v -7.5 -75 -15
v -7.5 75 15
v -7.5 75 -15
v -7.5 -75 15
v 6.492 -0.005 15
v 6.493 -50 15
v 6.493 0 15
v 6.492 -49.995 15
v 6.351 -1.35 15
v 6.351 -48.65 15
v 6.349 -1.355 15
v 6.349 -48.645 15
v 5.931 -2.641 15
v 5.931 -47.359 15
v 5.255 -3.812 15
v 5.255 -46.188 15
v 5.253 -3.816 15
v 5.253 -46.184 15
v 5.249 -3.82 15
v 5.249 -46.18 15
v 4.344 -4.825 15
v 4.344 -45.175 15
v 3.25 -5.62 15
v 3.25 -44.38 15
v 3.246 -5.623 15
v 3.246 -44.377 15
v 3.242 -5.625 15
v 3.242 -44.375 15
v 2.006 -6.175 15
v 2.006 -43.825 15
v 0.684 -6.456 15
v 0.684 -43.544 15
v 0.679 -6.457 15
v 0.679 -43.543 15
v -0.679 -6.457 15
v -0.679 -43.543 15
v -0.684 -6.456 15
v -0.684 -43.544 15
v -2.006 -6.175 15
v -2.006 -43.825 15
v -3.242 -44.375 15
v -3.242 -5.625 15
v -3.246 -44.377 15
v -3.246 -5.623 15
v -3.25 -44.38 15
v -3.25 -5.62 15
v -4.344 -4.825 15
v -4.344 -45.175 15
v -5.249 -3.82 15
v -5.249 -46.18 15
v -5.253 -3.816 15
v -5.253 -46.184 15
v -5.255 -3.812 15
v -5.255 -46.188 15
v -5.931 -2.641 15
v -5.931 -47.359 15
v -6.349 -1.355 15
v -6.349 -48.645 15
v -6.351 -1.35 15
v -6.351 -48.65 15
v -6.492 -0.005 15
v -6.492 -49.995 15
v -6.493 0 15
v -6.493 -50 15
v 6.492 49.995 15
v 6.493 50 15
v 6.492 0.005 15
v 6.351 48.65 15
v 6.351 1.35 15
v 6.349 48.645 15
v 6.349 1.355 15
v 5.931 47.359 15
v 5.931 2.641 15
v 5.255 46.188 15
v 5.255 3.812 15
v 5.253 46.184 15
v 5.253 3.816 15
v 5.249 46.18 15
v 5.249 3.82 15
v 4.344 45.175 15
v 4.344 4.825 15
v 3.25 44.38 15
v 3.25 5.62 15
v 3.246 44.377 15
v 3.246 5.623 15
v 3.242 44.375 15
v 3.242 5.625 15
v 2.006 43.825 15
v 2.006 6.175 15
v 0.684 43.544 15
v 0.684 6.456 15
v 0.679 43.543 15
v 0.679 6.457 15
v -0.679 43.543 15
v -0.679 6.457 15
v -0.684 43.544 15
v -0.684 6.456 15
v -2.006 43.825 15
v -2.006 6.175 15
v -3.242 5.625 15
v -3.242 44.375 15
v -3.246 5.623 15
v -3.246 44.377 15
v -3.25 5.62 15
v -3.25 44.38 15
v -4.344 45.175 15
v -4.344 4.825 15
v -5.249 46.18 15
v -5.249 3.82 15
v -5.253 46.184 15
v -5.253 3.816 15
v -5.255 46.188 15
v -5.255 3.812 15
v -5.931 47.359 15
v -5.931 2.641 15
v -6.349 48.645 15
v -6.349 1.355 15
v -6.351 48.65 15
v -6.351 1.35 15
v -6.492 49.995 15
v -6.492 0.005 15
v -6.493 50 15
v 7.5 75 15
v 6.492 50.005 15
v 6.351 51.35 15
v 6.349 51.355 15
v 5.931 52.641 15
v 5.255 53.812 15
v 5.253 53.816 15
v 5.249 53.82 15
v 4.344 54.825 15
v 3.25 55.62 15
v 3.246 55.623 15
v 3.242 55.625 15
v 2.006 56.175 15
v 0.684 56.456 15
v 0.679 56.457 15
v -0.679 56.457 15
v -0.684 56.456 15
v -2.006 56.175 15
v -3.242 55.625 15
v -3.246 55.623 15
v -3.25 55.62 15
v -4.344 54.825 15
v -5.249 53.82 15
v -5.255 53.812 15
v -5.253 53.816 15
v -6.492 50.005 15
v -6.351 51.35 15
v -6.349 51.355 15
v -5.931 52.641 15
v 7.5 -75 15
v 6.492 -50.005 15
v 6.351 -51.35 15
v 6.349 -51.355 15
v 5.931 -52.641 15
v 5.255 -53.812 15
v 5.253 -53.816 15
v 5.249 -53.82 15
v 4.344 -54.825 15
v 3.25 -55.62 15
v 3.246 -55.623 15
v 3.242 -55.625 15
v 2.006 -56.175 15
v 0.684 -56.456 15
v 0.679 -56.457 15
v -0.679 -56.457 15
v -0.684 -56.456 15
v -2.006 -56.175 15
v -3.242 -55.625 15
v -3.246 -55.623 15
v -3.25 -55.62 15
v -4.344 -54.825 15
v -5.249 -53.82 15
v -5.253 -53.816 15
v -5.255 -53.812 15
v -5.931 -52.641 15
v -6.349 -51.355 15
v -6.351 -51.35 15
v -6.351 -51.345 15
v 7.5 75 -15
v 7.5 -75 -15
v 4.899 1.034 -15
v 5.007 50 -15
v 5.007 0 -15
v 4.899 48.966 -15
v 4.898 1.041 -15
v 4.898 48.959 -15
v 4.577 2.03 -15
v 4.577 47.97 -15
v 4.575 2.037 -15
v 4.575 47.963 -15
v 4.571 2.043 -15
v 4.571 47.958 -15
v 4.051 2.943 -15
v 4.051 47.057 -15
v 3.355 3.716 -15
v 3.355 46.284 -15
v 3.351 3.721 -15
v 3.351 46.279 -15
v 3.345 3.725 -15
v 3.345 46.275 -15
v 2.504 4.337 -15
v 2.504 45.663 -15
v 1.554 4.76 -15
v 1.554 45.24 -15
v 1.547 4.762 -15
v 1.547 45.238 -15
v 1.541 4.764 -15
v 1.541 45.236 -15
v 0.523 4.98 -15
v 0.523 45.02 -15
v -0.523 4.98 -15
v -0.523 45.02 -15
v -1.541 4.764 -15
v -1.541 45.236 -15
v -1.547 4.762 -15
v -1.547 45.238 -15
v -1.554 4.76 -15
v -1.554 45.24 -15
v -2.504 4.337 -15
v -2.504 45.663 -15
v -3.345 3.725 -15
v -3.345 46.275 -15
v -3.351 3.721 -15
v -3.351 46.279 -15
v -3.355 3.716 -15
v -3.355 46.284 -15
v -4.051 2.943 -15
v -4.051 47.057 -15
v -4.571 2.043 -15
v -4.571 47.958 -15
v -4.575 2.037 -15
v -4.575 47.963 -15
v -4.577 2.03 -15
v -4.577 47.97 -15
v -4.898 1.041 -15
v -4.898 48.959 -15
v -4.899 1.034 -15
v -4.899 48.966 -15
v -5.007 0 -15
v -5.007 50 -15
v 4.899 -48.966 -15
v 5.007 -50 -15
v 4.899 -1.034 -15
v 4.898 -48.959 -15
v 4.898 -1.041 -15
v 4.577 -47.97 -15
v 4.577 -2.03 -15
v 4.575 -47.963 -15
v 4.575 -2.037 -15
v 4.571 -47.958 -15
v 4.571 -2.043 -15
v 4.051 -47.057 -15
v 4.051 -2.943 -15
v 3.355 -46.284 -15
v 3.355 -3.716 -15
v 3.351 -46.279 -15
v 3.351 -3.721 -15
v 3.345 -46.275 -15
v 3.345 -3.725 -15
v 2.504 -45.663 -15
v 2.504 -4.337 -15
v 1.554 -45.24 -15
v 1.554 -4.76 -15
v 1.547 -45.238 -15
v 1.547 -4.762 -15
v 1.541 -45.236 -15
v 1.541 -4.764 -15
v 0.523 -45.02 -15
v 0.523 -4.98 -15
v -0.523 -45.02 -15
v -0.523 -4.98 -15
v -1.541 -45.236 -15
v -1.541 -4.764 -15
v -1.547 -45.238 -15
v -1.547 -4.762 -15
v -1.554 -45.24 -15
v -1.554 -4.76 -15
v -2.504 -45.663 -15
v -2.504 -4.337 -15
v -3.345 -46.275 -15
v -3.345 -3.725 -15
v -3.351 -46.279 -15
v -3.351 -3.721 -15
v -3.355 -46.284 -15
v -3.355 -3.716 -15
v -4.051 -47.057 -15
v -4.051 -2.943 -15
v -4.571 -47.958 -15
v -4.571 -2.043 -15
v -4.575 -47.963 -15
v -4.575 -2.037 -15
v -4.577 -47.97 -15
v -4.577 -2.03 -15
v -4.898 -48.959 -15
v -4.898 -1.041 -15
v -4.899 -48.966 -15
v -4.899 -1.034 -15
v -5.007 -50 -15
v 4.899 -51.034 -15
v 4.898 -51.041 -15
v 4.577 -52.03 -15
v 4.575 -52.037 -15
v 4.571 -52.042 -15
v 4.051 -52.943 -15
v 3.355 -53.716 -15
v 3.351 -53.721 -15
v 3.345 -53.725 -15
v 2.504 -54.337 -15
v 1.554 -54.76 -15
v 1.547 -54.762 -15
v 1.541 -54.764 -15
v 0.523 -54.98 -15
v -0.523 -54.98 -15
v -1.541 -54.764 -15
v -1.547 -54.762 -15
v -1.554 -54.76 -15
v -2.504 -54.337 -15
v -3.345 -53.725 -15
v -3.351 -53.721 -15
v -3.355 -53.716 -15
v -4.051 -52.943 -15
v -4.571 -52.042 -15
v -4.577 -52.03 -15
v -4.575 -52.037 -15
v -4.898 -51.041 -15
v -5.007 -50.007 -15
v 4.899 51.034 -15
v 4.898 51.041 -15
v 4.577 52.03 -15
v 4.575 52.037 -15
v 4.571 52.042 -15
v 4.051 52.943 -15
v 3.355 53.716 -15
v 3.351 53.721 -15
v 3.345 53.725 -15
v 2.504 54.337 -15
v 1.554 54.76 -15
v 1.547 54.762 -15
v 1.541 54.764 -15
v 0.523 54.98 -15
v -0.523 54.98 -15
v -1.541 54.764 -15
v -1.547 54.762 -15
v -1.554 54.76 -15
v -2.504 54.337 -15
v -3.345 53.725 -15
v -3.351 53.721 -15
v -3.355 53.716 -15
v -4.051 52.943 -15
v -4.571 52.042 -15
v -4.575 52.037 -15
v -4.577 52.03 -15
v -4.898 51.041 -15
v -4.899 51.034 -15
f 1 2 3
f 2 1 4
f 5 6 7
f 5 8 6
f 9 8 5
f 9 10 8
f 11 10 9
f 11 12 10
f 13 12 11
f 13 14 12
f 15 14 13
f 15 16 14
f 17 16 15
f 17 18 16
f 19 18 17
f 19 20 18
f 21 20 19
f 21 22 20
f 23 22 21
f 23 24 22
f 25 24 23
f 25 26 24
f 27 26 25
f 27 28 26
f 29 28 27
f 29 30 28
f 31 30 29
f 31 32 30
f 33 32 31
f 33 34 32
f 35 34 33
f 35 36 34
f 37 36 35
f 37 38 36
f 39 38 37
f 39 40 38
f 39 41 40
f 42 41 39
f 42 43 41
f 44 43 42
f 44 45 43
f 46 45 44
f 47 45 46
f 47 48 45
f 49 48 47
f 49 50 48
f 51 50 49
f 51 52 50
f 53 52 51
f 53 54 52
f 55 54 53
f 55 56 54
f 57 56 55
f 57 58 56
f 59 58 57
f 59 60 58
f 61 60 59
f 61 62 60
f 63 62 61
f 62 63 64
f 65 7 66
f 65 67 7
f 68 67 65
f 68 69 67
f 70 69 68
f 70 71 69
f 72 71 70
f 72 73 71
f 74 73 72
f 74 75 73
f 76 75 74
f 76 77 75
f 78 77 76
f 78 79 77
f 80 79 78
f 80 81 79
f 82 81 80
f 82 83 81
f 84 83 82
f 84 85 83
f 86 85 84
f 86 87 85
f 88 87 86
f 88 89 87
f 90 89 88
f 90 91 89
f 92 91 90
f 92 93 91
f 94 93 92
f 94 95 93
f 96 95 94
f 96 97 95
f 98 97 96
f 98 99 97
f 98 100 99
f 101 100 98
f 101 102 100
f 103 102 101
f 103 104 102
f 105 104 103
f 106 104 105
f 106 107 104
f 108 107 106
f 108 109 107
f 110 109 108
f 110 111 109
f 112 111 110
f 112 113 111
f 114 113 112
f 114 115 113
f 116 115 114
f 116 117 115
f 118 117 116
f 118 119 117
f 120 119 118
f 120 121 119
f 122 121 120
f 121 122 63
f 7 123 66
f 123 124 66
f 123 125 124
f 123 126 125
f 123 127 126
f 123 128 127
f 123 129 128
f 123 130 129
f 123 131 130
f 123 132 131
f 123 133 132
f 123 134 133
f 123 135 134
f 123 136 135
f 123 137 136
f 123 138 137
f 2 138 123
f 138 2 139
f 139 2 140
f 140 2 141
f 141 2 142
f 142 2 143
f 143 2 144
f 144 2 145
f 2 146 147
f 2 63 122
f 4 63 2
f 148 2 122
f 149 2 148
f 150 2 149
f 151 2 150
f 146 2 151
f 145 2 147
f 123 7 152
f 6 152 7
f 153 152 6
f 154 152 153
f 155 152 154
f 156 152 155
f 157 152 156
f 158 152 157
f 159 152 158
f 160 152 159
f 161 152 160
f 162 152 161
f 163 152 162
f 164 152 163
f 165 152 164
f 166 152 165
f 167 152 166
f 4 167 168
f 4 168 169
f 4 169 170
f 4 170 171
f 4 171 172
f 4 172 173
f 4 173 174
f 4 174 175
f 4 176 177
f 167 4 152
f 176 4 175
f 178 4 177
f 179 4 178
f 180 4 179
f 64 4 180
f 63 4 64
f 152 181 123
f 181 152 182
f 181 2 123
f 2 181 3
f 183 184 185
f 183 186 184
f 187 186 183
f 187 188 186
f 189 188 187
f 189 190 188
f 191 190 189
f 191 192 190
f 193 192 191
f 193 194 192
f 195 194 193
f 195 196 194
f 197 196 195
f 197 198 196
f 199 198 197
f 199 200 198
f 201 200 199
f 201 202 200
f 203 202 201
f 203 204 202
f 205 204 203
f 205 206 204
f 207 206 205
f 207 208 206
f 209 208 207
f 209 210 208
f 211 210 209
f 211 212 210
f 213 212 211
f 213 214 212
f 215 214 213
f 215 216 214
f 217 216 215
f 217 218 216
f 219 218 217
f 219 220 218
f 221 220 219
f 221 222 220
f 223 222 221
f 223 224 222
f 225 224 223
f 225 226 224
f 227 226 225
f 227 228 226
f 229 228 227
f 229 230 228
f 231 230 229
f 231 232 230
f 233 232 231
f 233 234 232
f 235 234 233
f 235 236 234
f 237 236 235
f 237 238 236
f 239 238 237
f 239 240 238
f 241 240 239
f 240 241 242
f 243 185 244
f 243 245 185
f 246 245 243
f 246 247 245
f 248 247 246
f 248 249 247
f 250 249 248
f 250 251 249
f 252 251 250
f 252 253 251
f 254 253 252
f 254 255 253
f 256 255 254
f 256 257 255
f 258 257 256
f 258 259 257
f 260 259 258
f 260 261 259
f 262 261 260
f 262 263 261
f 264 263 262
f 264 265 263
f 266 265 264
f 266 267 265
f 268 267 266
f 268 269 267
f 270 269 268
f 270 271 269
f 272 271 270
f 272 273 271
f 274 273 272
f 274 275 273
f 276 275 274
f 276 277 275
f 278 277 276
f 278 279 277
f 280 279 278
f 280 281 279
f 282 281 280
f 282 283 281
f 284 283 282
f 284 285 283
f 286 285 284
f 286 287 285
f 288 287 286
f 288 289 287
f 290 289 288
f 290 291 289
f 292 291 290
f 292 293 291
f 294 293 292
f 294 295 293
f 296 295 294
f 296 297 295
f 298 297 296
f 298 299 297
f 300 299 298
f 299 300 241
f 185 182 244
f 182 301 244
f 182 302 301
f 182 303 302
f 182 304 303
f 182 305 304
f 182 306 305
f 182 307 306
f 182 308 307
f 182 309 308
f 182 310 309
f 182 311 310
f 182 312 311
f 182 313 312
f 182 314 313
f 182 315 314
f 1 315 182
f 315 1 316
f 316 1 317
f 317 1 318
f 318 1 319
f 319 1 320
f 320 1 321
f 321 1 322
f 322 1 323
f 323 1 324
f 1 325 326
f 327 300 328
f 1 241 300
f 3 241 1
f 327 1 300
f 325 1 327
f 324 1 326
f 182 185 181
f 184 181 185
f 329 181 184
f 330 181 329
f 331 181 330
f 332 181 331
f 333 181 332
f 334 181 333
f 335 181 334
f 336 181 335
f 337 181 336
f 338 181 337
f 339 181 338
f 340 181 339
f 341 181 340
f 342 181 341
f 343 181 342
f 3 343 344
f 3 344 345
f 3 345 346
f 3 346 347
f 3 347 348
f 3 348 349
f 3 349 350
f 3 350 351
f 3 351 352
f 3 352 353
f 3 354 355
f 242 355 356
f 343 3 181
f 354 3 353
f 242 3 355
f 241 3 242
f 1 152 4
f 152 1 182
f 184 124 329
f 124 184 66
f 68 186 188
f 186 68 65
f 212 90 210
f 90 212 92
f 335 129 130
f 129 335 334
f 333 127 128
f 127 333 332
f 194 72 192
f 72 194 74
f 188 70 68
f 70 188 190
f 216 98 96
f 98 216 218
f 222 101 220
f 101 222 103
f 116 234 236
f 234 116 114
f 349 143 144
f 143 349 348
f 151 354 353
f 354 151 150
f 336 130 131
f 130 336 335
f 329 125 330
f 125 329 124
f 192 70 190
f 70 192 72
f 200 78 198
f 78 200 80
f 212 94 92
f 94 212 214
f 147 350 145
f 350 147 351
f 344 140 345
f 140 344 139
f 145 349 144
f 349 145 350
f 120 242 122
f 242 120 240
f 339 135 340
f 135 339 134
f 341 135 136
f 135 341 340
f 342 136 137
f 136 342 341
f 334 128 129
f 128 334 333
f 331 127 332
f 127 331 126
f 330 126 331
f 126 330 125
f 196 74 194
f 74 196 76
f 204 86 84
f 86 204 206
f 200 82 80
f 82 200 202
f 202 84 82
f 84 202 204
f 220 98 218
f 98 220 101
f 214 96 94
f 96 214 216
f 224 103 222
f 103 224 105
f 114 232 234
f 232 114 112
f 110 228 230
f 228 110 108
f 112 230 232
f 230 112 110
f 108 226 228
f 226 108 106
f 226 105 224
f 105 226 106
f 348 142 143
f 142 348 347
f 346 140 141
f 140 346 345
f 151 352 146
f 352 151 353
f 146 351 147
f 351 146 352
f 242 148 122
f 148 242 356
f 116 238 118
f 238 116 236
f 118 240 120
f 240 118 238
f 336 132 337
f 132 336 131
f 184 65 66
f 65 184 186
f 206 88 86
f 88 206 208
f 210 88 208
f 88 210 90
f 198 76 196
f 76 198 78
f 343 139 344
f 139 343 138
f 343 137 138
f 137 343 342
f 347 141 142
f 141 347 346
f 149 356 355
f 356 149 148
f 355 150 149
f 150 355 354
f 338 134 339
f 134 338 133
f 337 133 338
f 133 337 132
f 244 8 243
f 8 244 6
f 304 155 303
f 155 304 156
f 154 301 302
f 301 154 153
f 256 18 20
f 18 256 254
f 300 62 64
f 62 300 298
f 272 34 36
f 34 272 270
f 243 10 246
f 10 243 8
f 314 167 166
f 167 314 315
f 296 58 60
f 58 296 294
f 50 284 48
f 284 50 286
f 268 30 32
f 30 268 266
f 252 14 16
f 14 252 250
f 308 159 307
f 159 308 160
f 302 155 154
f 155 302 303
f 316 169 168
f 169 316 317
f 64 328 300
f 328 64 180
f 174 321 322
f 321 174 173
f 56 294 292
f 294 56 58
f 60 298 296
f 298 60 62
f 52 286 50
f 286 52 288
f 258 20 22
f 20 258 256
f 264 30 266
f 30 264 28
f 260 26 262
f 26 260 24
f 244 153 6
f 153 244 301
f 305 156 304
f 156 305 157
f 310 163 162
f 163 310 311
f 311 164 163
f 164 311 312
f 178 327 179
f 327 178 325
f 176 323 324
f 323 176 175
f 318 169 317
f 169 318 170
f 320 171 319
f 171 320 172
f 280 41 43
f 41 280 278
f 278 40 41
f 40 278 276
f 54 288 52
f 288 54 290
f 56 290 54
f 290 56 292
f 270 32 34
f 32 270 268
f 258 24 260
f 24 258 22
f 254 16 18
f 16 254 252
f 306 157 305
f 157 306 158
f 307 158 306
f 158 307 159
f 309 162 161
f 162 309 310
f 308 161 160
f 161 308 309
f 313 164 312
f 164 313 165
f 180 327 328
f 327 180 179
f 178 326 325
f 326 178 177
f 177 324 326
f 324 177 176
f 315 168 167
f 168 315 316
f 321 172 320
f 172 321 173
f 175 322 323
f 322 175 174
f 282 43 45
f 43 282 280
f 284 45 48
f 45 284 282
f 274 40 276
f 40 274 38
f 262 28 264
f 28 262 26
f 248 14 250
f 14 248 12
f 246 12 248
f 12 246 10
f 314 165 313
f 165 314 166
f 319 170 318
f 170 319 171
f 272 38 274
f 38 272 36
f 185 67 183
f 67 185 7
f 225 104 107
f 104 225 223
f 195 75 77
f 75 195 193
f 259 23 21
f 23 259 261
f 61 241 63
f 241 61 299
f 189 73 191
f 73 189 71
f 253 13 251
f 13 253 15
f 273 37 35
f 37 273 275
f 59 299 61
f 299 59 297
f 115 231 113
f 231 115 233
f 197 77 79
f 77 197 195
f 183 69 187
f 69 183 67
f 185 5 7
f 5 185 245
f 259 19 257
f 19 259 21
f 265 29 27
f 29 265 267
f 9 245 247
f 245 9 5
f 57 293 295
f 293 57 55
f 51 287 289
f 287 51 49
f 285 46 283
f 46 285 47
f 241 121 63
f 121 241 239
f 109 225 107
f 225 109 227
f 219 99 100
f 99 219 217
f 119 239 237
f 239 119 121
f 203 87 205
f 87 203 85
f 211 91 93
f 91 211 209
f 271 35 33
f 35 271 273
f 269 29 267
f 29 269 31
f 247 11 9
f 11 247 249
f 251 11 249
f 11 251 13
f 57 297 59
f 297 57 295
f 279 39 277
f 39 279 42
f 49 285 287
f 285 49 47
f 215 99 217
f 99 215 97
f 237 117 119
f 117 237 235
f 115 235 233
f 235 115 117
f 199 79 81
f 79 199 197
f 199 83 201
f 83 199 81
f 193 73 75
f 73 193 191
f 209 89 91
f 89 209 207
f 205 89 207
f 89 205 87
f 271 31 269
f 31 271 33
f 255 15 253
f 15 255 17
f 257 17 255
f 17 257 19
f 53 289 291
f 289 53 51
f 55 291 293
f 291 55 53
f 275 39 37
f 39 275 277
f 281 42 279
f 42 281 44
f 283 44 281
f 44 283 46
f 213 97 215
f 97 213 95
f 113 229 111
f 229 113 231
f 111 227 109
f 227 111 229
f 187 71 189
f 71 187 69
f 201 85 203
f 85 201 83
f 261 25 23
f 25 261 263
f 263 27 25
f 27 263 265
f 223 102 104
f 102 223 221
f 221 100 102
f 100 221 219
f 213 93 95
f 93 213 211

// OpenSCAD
$fs = 0.01;

laser_radius=10/2; // the radius of the cylindrical laser module

wiggle_radius=13/2;

laser_length=30; // the length of the cylindrical laser module

laser_offset=100; // the horizontal offset between the laser modules (i.e. the reference distance between laser pointer dots

outer_laser_1_angle=0;

outer_laser_2_angle=.0;

depth_laser_angle=0; // the angle of rotation of the 'depth' reference laser module

block_width=laser_radius*3; 
block_height=laser_length;
block_length=laser_offset*1.5;

difference() {
    
    // the main shape
	cube (size = [block_width,block_length,block_height], center=true);
    
    // outer # 1
    translate([0,laser_offset/2,0])
    rotate([outer_laser_1_angle,0,0])
    {
    cylinder(h=block_height*1.01, r1=laser_radius, r2=wiggle_radius, center=true);
   }
    
    // outer # 2
    translate([0,-laser_offset/2,0])
    rotate([outer_laser_2_angle,0,0])
    cylinder(h=block_height*1.01, r1=laser_radius, r2=wiggle_radius, center=true);
    
   // inner 
     rotate([depth_laser_angle,0,0])
    cylinder(h=block_height*1.01, r1=laser_radius, r2=wiggle_radius, center=true);
    
}
